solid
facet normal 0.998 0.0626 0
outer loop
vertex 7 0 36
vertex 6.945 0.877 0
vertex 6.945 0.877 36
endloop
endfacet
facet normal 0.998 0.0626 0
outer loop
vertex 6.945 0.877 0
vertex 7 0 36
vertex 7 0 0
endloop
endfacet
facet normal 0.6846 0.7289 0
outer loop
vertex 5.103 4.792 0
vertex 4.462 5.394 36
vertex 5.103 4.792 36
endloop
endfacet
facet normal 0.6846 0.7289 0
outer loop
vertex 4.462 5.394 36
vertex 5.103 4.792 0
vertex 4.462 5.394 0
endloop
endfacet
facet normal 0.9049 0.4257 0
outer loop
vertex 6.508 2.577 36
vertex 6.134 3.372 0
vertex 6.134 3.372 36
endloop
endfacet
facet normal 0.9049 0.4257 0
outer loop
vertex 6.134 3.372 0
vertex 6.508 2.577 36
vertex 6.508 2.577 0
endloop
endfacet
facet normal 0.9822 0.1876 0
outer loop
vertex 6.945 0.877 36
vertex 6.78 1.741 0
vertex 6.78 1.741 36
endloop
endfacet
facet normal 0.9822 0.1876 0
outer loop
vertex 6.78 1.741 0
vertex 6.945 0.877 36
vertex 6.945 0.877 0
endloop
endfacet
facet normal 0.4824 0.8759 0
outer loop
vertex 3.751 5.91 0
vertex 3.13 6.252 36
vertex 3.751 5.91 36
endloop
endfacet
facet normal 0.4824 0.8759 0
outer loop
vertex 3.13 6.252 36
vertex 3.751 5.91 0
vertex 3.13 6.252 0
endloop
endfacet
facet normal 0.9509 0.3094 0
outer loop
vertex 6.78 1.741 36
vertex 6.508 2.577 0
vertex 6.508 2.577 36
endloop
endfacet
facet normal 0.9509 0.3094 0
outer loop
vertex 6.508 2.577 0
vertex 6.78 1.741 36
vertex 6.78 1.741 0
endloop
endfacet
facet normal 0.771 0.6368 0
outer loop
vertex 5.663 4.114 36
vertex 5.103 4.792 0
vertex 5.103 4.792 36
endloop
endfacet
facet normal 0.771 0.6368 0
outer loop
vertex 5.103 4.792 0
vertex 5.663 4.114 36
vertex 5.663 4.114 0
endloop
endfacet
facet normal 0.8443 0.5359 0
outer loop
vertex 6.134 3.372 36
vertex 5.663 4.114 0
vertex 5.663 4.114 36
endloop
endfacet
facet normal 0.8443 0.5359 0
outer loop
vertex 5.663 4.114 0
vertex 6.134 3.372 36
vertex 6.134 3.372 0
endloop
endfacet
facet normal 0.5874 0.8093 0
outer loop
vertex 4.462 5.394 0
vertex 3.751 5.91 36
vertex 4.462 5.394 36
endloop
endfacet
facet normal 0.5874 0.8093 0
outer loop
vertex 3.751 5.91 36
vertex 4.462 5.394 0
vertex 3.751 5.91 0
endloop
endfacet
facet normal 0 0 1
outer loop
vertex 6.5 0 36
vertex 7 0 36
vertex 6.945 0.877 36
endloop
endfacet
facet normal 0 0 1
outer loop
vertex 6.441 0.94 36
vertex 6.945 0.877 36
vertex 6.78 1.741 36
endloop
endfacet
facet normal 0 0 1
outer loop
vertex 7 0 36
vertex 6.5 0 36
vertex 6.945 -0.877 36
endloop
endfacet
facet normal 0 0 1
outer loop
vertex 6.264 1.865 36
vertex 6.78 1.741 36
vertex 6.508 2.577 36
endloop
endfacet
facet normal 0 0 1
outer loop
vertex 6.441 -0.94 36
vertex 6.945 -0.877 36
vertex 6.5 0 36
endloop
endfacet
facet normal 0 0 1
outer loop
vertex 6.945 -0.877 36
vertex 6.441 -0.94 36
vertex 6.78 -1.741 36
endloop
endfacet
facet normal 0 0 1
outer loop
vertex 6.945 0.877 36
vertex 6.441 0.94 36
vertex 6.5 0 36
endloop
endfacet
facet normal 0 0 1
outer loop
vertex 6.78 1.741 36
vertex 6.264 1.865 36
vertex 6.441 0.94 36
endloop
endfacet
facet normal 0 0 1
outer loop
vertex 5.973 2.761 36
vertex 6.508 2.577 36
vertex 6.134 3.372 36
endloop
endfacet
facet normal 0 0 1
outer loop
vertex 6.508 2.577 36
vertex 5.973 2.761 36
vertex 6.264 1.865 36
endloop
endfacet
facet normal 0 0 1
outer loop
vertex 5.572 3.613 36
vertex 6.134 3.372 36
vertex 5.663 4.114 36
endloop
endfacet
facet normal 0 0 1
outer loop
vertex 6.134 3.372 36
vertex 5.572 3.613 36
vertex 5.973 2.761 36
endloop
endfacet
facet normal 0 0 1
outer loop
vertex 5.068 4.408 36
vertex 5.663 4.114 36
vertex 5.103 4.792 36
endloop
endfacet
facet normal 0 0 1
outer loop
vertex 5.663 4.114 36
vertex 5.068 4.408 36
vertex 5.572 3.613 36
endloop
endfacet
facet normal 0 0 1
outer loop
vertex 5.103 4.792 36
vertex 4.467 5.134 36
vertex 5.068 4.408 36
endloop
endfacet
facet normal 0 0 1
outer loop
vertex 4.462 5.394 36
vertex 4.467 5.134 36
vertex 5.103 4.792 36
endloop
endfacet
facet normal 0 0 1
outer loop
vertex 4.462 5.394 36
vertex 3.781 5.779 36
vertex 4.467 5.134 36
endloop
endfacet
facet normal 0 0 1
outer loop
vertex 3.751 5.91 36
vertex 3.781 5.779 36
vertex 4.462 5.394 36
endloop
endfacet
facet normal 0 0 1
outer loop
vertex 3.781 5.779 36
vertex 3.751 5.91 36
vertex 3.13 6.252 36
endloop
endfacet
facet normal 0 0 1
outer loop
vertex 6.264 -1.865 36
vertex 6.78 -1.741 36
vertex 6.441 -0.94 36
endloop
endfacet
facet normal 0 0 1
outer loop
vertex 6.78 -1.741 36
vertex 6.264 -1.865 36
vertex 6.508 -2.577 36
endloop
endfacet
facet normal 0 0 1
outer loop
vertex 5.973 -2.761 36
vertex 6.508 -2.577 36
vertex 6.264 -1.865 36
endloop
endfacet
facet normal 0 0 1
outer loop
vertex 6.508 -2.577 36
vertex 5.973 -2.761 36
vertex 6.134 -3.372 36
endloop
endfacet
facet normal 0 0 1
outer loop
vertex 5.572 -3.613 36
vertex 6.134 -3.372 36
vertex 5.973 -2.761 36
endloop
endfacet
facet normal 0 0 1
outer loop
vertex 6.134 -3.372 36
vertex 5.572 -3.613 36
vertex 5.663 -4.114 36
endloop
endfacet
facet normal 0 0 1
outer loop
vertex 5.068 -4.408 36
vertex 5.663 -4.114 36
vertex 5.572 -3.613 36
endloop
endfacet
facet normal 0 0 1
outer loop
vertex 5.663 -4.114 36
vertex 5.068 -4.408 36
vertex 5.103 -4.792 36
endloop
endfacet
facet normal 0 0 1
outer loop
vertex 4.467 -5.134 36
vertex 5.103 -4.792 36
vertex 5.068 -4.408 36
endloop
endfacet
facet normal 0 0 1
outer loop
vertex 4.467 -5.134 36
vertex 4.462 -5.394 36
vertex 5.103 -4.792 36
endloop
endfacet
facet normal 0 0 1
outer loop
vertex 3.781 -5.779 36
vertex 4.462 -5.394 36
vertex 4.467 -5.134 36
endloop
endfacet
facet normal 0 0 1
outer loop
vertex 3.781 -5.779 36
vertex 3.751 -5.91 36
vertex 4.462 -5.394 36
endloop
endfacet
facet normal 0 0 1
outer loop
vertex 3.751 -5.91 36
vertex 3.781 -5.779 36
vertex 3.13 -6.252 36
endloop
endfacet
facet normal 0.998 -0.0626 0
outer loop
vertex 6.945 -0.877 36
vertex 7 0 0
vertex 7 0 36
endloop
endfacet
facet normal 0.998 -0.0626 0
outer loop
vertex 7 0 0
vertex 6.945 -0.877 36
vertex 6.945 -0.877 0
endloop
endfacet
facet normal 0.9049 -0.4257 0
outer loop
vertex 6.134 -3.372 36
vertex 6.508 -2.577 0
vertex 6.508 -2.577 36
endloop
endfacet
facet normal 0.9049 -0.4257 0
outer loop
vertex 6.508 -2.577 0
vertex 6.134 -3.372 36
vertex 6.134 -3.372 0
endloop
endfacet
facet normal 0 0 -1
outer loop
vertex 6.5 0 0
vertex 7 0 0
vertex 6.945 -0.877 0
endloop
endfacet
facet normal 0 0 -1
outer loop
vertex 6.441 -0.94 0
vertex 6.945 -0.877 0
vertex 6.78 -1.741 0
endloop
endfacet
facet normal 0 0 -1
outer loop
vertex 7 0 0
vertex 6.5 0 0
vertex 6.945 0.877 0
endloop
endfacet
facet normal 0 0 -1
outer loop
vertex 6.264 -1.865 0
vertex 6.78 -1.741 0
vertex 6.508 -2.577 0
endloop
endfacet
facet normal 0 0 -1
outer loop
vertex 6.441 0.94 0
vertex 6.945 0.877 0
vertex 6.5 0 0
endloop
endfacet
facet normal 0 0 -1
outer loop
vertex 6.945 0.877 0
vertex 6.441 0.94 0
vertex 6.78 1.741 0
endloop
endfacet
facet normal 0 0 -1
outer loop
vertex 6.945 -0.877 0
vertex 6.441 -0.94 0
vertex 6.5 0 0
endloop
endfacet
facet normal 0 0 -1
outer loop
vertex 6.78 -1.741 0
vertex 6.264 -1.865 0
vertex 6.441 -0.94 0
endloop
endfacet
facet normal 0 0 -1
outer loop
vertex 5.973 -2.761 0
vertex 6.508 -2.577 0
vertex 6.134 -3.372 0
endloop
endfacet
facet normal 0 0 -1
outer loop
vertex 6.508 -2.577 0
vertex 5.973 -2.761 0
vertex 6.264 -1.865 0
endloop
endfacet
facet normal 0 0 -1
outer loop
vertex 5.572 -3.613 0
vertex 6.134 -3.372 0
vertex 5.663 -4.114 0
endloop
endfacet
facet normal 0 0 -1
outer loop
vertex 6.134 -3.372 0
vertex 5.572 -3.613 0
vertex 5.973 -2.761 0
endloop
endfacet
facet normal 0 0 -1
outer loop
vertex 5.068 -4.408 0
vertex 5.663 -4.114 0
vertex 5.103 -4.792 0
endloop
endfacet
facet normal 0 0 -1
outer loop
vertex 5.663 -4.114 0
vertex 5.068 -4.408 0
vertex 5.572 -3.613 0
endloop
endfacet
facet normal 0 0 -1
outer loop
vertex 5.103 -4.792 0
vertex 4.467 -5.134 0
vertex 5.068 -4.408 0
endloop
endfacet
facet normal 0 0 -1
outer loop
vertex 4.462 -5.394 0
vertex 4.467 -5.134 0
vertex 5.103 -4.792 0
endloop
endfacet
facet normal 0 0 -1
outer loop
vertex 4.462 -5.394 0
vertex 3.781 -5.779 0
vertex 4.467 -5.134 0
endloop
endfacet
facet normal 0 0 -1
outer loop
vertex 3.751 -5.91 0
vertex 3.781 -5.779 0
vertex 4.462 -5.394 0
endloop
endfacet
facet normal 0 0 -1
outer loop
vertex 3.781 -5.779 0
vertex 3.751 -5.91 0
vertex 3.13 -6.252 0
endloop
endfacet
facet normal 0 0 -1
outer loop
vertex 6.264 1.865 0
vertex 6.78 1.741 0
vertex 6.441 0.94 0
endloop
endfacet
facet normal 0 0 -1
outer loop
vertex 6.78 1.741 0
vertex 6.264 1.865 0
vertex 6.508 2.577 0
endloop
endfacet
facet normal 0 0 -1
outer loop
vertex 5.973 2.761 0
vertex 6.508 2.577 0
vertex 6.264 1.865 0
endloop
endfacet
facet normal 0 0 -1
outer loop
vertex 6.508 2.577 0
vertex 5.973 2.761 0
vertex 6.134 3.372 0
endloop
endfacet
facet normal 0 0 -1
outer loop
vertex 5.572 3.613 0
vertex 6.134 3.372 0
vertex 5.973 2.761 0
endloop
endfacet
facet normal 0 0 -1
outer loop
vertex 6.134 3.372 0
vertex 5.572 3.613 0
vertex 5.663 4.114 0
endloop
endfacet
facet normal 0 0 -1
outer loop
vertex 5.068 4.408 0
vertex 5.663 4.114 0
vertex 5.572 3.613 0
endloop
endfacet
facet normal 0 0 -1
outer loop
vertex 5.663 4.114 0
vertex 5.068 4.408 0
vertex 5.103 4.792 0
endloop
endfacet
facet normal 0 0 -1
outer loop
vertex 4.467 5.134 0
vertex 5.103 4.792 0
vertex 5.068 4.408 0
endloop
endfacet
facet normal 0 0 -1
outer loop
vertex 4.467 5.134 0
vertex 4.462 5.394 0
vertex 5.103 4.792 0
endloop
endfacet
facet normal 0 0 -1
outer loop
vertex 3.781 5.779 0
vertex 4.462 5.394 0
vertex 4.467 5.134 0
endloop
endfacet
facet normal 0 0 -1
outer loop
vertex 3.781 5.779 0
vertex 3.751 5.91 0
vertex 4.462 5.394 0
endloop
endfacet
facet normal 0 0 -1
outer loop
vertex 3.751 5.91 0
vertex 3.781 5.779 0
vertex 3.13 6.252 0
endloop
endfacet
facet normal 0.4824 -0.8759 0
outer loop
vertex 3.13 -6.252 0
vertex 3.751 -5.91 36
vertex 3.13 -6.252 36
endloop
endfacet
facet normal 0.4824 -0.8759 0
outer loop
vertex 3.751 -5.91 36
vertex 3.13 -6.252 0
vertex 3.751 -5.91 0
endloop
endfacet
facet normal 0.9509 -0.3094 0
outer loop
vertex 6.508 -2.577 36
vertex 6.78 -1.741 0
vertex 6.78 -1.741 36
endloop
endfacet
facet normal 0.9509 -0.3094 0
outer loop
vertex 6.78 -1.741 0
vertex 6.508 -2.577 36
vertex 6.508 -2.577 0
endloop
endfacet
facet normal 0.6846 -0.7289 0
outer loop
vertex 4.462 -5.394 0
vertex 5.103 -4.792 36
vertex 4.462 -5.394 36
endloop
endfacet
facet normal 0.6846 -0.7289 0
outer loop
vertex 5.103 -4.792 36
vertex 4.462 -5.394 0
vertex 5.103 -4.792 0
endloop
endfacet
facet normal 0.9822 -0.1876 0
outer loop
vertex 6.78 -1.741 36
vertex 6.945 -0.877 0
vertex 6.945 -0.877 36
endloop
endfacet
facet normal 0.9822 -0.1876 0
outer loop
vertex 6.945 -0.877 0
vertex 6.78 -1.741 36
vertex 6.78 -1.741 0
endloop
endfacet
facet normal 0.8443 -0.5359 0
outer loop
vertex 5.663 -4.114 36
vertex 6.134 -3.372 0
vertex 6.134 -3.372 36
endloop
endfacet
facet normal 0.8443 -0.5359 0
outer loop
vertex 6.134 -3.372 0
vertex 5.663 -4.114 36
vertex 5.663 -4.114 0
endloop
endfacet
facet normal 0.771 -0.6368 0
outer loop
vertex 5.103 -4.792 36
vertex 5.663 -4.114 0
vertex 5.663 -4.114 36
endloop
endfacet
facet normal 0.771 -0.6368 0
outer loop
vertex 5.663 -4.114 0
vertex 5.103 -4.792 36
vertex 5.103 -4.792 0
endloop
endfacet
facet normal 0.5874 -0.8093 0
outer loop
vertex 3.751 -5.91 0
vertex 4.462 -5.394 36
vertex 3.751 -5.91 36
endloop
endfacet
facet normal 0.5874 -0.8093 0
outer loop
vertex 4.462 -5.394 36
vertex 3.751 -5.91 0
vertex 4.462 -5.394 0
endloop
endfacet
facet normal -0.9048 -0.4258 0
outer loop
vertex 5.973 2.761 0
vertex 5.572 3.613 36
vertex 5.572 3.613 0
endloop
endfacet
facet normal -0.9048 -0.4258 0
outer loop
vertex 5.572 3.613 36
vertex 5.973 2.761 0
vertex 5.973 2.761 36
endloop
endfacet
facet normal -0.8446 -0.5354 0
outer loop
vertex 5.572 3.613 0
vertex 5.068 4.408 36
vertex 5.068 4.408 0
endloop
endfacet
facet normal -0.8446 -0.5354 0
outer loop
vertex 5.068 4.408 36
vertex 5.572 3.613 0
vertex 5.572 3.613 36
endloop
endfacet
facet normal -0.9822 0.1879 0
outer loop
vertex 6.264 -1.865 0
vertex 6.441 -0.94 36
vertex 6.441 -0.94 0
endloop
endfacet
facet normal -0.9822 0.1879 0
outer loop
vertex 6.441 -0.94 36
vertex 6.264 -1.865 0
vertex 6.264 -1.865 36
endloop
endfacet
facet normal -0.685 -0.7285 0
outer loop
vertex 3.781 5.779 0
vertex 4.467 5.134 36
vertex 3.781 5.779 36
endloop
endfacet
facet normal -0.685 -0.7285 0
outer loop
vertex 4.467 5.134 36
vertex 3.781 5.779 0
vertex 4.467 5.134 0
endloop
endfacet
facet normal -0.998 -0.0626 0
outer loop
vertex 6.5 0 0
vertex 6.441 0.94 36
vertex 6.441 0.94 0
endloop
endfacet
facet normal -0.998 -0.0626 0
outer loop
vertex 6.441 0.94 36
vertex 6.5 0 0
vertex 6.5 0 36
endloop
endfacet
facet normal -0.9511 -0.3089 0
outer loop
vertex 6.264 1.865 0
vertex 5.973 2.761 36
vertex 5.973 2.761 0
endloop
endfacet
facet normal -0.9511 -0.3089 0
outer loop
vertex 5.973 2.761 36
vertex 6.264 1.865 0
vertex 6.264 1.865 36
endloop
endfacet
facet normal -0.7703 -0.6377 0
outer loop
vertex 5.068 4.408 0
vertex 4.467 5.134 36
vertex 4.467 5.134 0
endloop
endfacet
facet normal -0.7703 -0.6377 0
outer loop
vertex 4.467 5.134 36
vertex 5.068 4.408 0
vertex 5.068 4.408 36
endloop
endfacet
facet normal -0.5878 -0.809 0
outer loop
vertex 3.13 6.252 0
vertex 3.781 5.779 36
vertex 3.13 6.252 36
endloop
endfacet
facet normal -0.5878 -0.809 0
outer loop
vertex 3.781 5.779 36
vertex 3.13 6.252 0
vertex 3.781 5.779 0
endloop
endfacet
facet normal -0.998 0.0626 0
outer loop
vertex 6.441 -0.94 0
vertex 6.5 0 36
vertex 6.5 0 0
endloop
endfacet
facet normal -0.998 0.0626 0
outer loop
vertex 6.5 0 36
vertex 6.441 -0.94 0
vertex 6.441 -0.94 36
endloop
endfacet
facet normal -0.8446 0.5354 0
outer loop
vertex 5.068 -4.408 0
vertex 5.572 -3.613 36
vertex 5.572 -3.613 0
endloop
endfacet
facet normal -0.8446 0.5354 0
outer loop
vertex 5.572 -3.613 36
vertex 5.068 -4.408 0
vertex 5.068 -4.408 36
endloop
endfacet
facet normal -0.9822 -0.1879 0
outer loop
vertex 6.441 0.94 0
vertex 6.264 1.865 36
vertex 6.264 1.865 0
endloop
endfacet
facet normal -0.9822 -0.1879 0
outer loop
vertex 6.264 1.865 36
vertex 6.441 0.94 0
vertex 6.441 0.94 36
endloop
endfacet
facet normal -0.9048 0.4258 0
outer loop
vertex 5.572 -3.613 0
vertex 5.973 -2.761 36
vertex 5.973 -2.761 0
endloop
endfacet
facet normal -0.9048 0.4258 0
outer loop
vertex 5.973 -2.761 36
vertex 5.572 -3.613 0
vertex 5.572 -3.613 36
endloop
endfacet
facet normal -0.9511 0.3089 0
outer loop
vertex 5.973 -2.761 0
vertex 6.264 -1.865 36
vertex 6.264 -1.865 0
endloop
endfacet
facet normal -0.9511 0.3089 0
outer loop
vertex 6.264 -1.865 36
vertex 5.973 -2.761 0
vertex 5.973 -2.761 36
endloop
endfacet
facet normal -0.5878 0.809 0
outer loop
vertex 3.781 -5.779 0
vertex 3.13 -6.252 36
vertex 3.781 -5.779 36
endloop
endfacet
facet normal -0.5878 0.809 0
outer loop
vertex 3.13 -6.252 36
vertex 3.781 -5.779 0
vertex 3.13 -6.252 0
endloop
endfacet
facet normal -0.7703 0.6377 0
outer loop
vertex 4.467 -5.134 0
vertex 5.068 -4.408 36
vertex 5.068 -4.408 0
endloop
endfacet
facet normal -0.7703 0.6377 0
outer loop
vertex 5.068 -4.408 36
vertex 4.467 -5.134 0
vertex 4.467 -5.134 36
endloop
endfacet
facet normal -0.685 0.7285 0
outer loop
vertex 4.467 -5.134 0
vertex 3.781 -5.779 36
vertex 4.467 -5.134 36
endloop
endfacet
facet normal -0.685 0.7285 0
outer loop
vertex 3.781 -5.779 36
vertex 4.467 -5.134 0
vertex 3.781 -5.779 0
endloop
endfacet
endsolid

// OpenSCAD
$fn = 50;


difference() {
	union() {
		cylinder(h = 36, r = 7.0000000000);
		translate(v = [-4.0000000000, 0, 0]) {
			cylinder(h = 36, r = 7.0000000000);
		}
	}
	union() {
		cylinder(h = 36, r = 3.2500000000);
		cylinder(h = 36, r = 1.8000000000);
		cylinder(h = 36, r = 1.8000000000);
		cylinder(h = 36, r = 1.8000000000);
		translate(v = [-8.5000000000, 0, 0]) {
			hull() {
				translate(v = [-3.7500000000, 0.0000000000, 0]) {
					cylinder(h = 36, r = 7.5000000000);
				}
				translate(v = [3.7500000000, 0.0000000000, 0]) {
					cylinder(h = 36, r = 7.5000000000);
				}
				translate(v = [-3.7500000000, -0.0000000000, 0]) {
					cylinder(h = 36, r = 7.5000000000);
				}
				translate(v = [3.7500000000, -0.0000000000, 0]) {
					cylinder(h = 36, r = 7.5000000000);
				}
			}
		}
		translate(v = [-1.0000000000, 0, 0.0000000000]) {
			cylinder(h = 36, r = 7.5000000000);
		}
	}
}
